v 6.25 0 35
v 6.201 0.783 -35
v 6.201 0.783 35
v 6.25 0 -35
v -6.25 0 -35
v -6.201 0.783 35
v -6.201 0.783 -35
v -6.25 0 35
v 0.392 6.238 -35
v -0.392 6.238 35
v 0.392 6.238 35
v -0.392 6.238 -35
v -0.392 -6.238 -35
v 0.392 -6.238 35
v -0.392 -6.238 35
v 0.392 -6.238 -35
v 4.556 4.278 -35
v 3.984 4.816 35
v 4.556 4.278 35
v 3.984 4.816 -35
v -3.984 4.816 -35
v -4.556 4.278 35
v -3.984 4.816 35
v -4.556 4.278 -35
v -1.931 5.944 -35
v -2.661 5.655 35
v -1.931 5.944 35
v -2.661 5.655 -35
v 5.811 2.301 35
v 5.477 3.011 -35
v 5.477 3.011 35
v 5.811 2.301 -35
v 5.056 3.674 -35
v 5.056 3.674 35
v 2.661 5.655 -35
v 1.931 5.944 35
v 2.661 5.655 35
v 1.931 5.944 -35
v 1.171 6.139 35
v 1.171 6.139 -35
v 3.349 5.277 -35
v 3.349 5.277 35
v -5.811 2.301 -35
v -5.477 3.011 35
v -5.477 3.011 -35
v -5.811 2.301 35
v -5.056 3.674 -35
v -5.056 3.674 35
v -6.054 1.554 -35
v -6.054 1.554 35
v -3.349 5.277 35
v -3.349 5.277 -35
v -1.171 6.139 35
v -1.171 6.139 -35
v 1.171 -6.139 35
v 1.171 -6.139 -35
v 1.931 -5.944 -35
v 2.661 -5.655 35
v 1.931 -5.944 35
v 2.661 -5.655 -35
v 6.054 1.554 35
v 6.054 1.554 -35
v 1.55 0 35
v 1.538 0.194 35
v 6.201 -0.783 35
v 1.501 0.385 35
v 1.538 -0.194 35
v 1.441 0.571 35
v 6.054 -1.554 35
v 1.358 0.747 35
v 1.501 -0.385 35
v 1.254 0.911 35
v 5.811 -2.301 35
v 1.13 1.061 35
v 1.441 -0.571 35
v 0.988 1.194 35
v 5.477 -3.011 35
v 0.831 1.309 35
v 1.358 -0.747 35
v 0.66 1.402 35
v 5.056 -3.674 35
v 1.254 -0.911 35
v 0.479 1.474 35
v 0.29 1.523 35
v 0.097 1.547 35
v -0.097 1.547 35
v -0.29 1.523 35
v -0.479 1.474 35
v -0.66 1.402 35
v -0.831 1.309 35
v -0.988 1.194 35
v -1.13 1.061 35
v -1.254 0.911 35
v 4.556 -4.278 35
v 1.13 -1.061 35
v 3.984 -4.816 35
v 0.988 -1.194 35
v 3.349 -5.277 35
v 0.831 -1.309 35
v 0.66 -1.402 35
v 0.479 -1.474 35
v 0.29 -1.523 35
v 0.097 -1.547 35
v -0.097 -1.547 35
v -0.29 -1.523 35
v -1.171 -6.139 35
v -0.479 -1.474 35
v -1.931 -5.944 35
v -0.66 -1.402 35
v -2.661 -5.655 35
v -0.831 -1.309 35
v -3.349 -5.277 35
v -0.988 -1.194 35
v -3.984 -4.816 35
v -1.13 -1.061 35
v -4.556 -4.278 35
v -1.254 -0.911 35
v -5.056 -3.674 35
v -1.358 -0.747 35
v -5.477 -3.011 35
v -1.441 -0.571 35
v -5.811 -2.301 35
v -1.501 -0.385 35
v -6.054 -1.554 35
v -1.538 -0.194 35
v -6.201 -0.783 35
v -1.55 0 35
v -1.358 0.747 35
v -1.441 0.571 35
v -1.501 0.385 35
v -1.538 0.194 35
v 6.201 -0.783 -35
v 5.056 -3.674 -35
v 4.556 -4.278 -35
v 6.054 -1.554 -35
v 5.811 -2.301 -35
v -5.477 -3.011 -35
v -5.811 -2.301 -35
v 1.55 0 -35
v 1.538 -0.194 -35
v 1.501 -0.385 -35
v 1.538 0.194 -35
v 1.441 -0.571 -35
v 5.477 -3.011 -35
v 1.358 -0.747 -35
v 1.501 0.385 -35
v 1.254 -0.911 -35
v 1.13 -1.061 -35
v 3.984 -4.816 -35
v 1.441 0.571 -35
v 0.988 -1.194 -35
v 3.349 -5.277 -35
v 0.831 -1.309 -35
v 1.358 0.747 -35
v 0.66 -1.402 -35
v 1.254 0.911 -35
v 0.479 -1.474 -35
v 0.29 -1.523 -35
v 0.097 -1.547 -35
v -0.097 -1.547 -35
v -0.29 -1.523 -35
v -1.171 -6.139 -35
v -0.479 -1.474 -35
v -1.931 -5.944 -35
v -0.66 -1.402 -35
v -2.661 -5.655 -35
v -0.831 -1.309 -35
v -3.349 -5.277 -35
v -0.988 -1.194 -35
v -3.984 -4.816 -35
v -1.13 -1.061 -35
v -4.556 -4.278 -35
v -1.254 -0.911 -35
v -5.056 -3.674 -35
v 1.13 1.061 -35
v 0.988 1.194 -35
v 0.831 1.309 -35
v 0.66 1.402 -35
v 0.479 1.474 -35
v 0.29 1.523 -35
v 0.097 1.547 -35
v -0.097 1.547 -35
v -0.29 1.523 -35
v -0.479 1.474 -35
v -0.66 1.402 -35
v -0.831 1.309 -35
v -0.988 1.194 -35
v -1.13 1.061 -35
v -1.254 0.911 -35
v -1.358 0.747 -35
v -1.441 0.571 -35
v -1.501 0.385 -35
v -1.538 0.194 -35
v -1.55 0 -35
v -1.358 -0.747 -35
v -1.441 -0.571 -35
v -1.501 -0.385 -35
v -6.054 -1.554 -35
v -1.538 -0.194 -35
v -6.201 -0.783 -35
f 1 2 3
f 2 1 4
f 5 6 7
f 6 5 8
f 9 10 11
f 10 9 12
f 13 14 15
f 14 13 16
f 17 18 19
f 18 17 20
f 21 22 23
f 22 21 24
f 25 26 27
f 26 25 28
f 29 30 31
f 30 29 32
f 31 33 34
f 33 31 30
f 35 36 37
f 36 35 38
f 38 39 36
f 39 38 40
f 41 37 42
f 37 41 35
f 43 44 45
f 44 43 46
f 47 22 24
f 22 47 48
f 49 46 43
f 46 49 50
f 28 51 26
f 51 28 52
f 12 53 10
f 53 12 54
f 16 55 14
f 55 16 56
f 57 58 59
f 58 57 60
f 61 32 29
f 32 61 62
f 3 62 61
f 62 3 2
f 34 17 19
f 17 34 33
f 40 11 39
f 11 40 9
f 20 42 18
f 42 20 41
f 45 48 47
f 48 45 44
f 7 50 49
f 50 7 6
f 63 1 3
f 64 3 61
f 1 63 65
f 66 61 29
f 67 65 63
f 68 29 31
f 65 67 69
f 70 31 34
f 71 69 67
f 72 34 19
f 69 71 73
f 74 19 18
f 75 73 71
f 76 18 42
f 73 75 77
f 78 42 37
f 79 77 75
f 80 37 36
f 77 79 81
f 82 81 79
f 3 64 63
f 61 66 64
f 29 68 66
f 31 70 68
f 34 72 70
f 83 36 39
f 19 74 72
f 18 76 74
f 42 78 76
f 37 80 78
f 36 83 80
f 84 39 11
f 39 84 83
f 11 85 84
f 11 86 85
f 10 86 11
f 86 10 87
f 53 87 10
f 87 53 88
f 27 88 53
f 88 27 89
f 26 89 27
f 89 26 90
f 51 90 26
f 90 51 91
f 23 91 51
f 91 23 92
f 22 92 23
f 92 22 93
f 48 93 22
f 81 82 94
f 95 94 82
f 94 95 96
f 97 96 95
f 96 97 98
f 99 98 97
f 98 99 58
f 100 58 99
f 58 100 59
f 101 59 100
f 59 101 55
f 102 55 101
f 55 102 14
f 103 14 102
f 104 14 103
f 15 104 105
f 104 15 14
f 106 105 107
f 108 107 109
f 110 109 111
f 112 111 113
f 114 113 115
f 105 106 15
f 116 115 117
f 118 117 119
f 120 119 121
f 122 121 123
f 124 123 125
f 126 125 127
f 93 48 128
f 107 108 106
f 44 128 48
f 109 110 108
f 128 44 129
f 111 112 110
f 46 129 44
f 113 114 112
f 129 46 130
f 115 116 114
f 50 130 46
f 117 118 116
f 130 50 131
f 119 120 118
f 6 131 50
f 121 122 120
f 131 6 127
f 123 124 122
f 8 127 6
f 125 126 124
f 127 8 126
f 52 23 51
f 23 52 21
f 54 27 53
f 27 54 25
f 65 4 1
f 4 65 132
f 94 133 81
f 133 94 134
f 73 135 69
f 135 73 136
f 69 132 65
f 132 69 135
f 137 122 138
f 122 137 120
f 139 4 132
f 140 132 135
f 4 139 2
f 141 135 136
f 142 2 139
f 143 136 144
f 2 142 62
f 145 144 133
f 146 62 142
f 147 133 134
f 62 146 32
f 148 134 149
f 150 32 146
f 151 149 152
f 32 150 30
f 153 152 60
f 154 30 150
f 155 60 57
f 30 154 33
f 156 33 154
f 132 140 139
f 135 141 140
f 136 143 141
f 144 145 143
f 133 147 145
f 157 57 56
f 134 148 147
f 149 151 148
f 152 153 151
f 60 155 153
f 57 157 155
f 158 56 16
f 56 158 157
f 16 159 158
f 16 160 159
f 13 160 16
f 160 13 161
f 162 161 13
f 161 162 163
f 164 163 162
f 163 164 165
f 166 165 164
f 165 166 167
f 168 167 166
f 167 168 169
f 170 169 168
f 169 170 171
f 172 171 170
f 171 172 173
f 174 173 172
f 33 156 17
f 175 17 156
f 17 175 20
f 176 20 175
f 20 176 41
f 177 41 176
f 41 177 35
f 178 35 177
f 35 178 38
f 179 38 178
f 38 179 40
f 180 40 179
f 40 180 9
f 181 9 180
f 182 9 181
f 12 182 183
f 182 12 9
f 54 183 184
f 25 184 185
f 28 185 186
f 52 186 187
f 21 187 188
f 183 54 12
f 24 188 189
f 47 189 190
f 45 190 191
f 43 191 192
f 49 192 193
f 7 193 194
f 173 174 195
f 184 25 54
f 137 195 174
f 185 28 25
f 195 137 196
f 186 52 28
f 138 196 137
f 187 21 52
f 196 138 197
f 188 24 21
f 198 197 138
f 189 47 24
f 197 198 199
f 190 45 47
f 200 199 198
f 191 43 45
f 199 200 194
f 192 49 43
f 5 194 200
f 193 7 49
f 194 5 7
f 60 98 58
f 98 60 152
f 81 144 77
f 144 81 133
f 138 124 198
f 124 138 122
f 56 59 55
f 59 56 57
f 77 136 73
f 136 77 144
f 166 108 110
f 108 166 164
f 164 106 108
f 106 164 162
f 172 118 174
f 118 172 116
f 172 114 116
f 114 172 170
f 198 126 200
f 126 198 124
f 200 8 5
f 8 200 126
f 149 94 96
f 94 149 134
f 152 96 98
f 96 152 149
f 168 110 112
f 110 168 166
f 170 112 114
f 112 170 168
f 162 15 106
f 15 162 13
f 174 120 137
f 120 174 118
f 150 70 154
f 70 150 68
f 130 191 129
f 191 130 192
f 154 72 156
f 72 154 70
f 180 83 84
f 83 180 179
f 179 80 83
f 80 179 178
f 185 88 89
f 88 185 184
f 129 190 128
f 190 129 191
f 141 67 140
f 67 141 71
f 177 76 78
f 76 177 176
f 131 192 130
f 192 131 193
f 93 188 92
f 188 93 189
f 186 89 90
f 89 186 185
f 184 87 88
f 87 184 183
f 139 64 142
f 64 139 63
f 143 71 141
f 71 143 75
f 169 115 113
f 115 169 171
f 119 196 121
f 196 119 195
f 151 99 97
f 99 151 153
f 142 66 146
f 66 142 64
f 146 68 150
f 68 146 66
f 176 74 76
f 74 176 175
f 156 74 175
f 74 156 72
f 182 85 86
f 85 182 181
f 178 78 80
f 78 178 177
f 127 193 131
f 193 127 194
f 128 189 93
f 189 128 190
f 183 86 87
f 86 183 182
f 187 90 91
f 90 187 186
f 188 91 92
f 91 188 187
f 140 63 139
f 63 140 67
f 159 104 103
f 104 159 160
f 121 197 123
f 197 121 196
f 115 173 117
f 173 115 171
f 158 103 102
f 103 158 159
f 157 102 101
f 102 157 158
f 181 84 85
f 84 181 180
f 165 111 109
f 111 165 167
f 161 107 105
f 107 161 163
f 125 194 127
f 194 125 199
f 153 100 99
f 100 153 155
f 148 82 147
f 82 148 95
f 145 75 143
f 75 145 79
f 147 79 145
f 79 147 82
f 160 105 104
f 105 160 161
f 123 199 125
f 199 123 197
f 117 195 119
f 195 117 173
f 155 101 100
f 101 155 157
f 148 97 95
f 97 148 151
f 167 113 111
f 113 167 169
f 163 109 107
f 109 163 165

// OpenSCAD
$fn = 50;


difference() {
	union() {
		translate(v = [0, 0, -35.0000000000]) {
			cylinder(h = 70, r = 6.2500000000);
		}
	}
	union() {
		translate(v = [0, 0, -100.0000000000]) {
			cylinder(h = 200, r = 1.5500000000);
		}
	}
}
